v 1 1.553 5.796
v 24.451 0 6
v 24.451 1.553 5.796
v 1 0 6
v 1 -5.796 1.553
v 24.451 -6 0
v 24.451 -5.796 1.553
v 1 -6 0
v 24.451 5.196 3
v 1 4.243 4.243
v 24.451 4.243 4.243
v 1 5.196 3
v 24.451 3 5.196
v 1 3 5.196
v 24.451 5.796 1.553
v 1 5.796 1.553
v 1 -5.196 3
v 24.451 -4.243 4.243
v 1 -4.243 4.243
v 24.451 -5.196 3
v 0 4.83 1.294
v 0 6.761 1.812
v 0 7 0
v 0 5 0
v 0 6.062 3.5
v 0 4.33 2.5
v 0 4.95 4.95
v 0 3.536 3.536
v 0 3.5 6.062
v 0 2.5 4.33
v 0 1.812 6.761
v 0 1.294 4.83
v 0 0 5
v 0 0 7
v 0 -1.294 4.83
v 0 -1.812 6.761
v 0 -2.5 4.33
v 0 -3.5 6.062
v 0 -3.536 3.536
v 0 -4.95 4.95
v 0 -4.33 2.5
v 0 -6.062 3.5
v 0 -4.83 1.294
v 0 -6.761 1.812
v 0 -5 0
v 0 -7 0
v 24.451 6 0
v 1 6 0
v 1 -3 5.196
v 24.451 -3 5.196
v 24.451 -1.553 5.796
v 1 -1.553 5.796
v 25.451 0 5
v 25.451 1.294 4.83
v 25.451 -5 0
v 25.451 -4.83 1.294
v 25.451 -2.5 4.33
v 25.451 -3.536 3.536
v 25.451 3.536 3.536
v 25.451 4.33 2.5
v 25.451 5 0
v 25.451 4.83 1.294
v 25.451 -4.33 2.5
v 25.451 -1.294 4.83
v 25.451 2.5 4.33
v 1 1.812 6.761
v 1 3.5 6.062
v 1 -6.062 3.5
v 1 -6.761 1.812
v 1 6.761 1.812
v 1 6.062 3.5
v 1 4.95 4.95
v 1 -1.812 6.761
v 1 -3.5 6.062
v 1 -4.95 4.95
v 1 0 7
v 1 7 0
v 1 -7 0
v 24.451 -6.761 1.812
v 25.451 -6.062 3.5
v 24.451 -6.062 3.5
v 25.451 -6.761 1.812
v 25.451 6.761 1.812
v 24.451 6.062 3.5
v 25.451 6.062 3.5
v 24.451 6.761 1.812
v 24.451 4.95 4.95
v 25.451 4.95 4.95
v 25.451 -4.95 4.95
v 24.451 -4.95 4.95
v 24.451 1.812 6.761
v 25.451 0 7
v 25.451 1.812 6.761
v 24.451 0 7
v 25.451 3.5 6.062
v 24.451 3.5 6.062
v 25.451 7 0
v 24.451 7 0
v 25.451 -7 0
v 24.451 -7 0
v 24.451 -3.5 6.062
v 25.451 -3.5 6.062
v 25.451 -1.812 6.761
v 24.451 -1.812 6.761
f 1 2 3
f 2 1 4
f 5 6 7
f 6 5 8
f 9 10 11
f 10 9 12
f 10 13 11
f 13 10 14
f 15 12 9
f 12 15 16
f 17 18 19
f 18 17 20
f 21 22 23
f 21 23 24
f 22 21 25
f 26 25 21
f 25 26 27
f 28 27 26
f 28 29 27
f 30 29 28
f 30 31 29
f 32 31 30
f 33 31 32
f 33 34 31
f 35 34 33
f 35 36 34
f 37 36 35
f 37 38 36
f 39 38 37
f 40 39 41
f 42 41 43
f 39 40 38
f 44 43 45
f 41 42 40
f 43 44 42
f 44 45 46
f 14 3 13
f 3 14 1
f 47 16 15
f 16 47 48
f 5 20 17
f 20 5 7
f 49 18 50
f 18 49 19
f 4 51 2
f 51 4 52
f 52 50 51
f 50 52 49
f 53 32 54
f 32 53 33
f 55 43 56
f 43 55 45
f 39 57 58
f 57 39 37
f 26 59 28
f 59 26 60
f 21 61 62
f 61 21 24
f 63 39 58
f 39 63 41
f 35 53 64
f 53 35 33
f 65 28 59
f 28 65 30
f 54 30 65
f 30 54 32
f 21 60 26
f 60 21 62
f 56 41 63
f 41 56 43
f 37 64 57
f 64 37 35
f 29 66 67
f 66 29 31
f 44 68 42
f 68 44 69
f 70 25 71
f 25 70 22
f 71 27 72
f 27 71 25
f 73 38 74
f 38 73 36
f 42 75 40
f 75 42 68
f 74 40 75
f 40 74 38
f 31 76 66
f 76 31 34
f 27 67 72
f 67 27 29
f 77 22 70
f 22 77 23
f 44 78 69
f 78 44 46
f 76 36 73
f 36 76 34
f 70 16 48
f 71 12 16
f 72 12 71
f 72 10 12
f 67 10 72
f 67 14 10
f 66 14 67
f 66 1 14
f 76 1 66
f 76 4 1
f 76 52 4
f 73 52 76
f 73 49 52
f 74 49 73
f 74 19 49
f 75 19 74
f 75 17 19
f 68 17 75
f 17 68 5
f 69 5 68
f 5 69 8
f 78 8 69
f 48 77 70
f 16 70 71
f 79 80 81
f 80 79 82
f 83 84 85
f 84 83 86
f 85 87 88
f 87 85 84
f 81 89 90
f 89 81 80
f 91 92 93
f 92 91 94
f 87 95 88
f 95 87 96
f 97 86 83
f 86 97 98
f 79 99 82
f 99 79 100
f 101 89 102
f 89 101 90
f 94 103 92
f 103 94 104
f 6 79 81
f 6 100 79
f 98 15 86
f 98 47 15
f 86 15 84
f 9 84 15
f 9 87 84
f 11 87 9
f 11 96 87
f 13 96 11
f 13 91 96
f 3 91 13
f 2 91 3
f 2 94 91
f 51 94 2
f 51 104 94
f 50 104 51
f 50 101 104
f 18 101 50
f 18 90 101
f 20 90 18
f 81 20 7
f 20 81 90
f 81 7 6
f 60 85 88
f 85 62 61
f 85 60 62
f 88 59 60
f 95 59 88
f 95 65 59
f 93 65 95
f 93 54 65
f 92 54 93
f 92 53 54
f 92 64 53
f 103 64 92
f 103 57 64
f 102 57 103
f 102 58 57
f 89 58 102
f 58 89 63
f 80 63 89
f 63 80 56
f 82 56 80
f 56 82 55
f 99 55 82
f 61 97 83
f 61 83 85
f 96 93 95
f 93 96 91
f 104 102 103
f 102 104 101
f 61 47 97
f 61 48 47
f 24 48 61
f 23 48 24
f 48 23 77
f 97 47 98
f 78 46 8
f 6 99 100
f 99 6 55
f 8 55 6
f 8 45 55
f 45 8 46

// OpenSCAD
// file: ../build_environments.scad
// build_environments.scad: modules to build level sections
//

module pool(diameter=10.0, wall_height=2.0, step_width=3.0, connections=[])
{
    difference() {
        union() {
        difference() {
            cylinder(h=0.5,r1=diameter+step_width,r2=diameter+step_width,$fn=48);
            translate([0,0,-0.1])
                cylinder(h=0.7,r1=diameter,r2=diameter,$fn=48);
        }
        difference() {
            cylinder(h=wall_height,r1=diameter+step_width+1.0,r2=diameter+step_width+1.0,$fn=48);
            translate([0,0,-0.1])
                cylinder(h=wall_height+0.2,r1=diameter+step_width,r2=diameter+step_width,$fn=48);
        }
        }
    
        for (c = connections)
        {
            rotate([0,90,0]) {
                angle = atan2(c[1],c[0]);
                rotate([-angle,0,0]) {
                    cylinder(h=diameter+5.0,r1=c[2],r2=c[2],$fn=48);
                }
            }
        }
    }
}

module straight(length=10.0, width=2.0, dy1=0.0, dy2=0.0, dz=0.0)
{
    dims = [0, 0, 0, 0, 0, (dz/length)];
    matrix = [
        [ 1, dims[0], dims[1], 0 ],
        [ dims[2], 1, dims[4], 0 ],
        [ dims[5], dims[3], 1, 0 ],
        [ 0, 0, 0, 1 ]
    ];
    multmatrix(matrix)
    difference() {
        translate([dy1,0,0])
        union() {
            rotate([0,90,0]) {
                difference() {
                    cylinder(h=(length-dy1-dy2),r1=width+1.0,r2=width+1.0,$fn=24);
                    translate([0,0,-0.1])
                        cylinder(h=(length-dy1-dy2+0.2),r1=width,r2=width,$fn=24);
                }
                difference() {
                    cylinder(h=1.0,r1=width+2.0,r2=width+2.0,$fn=24);
                    translate([0,0,-0.1])
                        cylinder(h=1.2,r1=width,r2=width,$fn=24);
                }
                translate([0,0,(length-dy1-dy2)-1.0]) {
                    difference() {
                        cylinder(h=1.0,r1=width+2.0,r2=width+2.0,$fn=24);
                        translate([0,0,-0.1])
                            cylinder(h=1.2,r1=width,r2=width,$fn=24);
                    }
                }
            }
        }
        translate([0,0,-(2*width+4.0)/2])
            cube([3*length,3*length,2*width+4.0],center=true);
    }
}

module curve(p0=[0,0], center=[0,0], dir=1, angle=0.0, width=2.0)
{
    radius = sqrt((p0[0]-center[0])*(p0[0]-center[0]) + (p0[1]-center[1])*(p0[1]-center[1]));
    if (dir == 0) {
        difference() {
            rotate([0,0,-90])
            difference() {
                rotate_extrude(angle = angle, convexity = 10, $fn=32)
                    translate([radius, 0, 0])
                        circle(r = width+1.0,$fn=24);
                rotate([0,0,-1.0])
                    rotate_extrude(angle = angle+2.0, convexity = 10, $fn=32)
                        translate([radius, 0, 0])
                            circle(r = width,$fn=24);
            }
            translate([0,0,-(2*width+4.0)/2])
                cube([5*radius,5*radius,2*width+4.0],center=true);
        }
    }
    else {
        difference() {
            rotate([0,0,90])
            difference() {
                rotate_extrude(angle = -angle, convexity = 10, $fn=32)
                    translate([radius, 0, 0])
                        circle(r = width+1.0,$fn=24);
                rotate([0,0,1.0])
                    rotate_extrude(angle = -angle-2.0, convexity = 10, $fn=32)
                        translate([radius, 0, 0])
                            circle(r = width,$fn=24);
            }
            translate([0,0,-(2*width+4.0)/2])
                cube([5*radius,5*radius,2*width+4.0],center=true);
        }
    }

}

// test pool
//pool(diameter=12.0000, wall_height=3.0000, step_width=3.0000, connections=[[0.0000,-26.0000,2.0000], [23.6074,0.0000,2.0000]]);

// test straight, slope
//straight(length=26.0000, width=2.0000, dy1=11.8322, dy2=6.7082, dz=0.0000);
//straight(length=29.1549, width=12.0000, dy1=0.0000, dy2=0.0000, dz=-15.0000);

// test curve
//curve(p0=[23.6074, 0.0000], center=[23.6074, 5.0000], dir=0, angle=60.1011, width=2.0000);
//curve(p0=[33.6426, 12.4219], center=[37.9771, 9.9295], dir=1, angle=120.4627, width=2.0000);
// main file
use <../build_environments.scad>;
straight(length=25.4510, width=5.0000, dy1=0.0000, dy2=0.0000, dz=0.0000);
